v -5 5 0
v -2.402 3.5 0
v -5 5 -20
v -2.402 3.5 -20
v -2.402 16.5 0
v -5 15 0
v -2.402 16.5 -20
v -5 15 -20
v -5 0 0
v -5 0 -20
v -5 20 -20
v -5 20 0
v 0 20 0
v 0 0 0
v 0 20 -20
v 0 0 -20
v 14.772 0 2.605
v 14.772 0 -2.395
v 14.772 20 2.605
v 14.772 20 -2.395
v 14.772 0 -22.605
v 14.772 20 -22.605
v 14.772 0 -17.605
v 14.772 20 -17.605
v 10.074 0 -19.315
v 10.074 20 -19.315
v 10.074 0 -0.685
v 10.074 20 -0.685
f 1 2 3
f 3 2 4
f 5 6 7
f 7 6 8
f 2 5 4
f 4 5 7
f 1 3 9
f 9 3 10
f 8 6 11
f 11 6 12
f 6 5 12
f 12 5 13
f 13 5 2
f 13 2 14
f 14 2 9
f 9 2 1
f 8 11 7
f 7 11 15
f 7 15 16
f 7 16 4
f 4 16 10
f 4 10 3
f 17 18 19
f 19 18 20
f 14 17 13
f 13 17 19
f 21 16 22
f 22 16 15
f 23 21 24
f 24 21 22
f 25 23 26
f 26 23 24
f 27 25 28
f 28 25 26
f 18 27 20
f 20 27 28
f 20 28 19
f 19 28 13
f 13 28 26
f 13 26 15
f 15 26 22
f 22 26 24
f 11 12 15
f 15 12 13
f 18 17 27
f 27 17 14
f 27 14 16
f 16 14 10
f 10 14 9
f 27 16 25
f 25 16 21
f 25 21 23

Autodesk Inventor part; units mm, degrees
ref_plane "YZ Plane" through (0, 0, 0) normal (1, 0, 0) x (0, 1, 0)
ref_plane "XZ Plane" through (0, 0, 0) normal (0, 1, 0) x (-1, 0, 0)
ref_plane "XY Plane" through (0, 0, 0) normal (0, 0, 1) x (1, 0, 0)
sketch "Sketch1" plane through (0, 0, 0) normal (0, 1, 0) x (-1, 0, 0)
  line L0 (0, 0) -> (0, -20)
  line L1 (0, -20) -> (-14.7721, -22.6047)
  line L2 (-14.7721, -22.6047) -> (-14.7721, -17.6047)
  line L3 (-14.7721, -17.6047) -> (-10.0737, -19.3148)
  line L4 (0, 0) -> (-14.7721, 2.6047)
  line L5 (-14.7721, 2.6047) -> (-14.7721, -2.3953)
  line L6 (-14.7721, -2.3953) -> (-10.0737, -0.6852)
  line L7 (-10.0737, -0.6852) -> (-10.0737, -19.3148)
  dimension "d0" = 20
  dimension "d1" = 15
  dimension "d2" = 100
  dimension "d3" = 5
  dimension "d4" = 5
  dimension "d5" = 70
  dimension "d6" = 15
  dimension "d7" = 5
  dimension "d8" = 5
extrude "Extrusion1" add sketch "Sketch1" along normal blind 20
sketch "Sketch2" plane through (0, 0, -20) normal (-1, 0, 0) x (0, 0, 1)
  line L0 (0, 0) -> (0, 20) projected
  line L1 (20, 0) -> (0, 0)
  line L2 (0, 0) -> (0, 20)
  line L3 (0, 20) -> (20, 20)
  line L4 (20, 20) -> (20, 0)
extrude "Extrusion2" add sketch "Sketch2" along normal blind 5
sketch "Sketch3" plane through (0, 0, -20) normal (0, 0, -1) x (-1, 0, 0)
  line L0 (5, 20) -> (5, 0) projected
  line L1 (5, 20) -> (5, 0)
  line L2 (5, 0) -> (5, 5)
  line L3 (5, 20) -> (5, 15)
  line L4 (5, 15) -> (2.4019, 16.5)
  line L5 (5, 15) -> (8, 15) construction
  line L6 (5, 5) -> (2.4019, 3.5)
  line L7 (2.4019, 3.5) -> (2.4019, 16.5)
  line L8 (5, 20) -> (-5, 20)
  line L9 (5, 15) -> (5, 5)
  point P0 (0, 0)
  point P1 (5, 5)
  dimension "d13" = 5
  dimension "d14" = 5
  dimension "d15" = 3
  dimension "d16" = 150
  dimension "d17" = 3
extrude "Extrusion3" cut sketch "Sketch3" against normal blind 50
equation "\"BendRadius\" = Thickness"
equation "\"BendReliefWidth\" = Thickness"
equation "\"BendReliefDepth\" = 0.5 * Thickness"
equation "\"CornerReliefSize\" = 4 * Thickness"
equation "\"MinimumRemnant\" = 2 * Thickness"
equation "\"TransitionRadius\" = BendRadius"
equation "\"JacobiRadiusSize\" = BendRadius"
equation "\"GapSize\" = Thickness"
equation "\"Thickness\" = 0.5"
properties part number "Part1x"
